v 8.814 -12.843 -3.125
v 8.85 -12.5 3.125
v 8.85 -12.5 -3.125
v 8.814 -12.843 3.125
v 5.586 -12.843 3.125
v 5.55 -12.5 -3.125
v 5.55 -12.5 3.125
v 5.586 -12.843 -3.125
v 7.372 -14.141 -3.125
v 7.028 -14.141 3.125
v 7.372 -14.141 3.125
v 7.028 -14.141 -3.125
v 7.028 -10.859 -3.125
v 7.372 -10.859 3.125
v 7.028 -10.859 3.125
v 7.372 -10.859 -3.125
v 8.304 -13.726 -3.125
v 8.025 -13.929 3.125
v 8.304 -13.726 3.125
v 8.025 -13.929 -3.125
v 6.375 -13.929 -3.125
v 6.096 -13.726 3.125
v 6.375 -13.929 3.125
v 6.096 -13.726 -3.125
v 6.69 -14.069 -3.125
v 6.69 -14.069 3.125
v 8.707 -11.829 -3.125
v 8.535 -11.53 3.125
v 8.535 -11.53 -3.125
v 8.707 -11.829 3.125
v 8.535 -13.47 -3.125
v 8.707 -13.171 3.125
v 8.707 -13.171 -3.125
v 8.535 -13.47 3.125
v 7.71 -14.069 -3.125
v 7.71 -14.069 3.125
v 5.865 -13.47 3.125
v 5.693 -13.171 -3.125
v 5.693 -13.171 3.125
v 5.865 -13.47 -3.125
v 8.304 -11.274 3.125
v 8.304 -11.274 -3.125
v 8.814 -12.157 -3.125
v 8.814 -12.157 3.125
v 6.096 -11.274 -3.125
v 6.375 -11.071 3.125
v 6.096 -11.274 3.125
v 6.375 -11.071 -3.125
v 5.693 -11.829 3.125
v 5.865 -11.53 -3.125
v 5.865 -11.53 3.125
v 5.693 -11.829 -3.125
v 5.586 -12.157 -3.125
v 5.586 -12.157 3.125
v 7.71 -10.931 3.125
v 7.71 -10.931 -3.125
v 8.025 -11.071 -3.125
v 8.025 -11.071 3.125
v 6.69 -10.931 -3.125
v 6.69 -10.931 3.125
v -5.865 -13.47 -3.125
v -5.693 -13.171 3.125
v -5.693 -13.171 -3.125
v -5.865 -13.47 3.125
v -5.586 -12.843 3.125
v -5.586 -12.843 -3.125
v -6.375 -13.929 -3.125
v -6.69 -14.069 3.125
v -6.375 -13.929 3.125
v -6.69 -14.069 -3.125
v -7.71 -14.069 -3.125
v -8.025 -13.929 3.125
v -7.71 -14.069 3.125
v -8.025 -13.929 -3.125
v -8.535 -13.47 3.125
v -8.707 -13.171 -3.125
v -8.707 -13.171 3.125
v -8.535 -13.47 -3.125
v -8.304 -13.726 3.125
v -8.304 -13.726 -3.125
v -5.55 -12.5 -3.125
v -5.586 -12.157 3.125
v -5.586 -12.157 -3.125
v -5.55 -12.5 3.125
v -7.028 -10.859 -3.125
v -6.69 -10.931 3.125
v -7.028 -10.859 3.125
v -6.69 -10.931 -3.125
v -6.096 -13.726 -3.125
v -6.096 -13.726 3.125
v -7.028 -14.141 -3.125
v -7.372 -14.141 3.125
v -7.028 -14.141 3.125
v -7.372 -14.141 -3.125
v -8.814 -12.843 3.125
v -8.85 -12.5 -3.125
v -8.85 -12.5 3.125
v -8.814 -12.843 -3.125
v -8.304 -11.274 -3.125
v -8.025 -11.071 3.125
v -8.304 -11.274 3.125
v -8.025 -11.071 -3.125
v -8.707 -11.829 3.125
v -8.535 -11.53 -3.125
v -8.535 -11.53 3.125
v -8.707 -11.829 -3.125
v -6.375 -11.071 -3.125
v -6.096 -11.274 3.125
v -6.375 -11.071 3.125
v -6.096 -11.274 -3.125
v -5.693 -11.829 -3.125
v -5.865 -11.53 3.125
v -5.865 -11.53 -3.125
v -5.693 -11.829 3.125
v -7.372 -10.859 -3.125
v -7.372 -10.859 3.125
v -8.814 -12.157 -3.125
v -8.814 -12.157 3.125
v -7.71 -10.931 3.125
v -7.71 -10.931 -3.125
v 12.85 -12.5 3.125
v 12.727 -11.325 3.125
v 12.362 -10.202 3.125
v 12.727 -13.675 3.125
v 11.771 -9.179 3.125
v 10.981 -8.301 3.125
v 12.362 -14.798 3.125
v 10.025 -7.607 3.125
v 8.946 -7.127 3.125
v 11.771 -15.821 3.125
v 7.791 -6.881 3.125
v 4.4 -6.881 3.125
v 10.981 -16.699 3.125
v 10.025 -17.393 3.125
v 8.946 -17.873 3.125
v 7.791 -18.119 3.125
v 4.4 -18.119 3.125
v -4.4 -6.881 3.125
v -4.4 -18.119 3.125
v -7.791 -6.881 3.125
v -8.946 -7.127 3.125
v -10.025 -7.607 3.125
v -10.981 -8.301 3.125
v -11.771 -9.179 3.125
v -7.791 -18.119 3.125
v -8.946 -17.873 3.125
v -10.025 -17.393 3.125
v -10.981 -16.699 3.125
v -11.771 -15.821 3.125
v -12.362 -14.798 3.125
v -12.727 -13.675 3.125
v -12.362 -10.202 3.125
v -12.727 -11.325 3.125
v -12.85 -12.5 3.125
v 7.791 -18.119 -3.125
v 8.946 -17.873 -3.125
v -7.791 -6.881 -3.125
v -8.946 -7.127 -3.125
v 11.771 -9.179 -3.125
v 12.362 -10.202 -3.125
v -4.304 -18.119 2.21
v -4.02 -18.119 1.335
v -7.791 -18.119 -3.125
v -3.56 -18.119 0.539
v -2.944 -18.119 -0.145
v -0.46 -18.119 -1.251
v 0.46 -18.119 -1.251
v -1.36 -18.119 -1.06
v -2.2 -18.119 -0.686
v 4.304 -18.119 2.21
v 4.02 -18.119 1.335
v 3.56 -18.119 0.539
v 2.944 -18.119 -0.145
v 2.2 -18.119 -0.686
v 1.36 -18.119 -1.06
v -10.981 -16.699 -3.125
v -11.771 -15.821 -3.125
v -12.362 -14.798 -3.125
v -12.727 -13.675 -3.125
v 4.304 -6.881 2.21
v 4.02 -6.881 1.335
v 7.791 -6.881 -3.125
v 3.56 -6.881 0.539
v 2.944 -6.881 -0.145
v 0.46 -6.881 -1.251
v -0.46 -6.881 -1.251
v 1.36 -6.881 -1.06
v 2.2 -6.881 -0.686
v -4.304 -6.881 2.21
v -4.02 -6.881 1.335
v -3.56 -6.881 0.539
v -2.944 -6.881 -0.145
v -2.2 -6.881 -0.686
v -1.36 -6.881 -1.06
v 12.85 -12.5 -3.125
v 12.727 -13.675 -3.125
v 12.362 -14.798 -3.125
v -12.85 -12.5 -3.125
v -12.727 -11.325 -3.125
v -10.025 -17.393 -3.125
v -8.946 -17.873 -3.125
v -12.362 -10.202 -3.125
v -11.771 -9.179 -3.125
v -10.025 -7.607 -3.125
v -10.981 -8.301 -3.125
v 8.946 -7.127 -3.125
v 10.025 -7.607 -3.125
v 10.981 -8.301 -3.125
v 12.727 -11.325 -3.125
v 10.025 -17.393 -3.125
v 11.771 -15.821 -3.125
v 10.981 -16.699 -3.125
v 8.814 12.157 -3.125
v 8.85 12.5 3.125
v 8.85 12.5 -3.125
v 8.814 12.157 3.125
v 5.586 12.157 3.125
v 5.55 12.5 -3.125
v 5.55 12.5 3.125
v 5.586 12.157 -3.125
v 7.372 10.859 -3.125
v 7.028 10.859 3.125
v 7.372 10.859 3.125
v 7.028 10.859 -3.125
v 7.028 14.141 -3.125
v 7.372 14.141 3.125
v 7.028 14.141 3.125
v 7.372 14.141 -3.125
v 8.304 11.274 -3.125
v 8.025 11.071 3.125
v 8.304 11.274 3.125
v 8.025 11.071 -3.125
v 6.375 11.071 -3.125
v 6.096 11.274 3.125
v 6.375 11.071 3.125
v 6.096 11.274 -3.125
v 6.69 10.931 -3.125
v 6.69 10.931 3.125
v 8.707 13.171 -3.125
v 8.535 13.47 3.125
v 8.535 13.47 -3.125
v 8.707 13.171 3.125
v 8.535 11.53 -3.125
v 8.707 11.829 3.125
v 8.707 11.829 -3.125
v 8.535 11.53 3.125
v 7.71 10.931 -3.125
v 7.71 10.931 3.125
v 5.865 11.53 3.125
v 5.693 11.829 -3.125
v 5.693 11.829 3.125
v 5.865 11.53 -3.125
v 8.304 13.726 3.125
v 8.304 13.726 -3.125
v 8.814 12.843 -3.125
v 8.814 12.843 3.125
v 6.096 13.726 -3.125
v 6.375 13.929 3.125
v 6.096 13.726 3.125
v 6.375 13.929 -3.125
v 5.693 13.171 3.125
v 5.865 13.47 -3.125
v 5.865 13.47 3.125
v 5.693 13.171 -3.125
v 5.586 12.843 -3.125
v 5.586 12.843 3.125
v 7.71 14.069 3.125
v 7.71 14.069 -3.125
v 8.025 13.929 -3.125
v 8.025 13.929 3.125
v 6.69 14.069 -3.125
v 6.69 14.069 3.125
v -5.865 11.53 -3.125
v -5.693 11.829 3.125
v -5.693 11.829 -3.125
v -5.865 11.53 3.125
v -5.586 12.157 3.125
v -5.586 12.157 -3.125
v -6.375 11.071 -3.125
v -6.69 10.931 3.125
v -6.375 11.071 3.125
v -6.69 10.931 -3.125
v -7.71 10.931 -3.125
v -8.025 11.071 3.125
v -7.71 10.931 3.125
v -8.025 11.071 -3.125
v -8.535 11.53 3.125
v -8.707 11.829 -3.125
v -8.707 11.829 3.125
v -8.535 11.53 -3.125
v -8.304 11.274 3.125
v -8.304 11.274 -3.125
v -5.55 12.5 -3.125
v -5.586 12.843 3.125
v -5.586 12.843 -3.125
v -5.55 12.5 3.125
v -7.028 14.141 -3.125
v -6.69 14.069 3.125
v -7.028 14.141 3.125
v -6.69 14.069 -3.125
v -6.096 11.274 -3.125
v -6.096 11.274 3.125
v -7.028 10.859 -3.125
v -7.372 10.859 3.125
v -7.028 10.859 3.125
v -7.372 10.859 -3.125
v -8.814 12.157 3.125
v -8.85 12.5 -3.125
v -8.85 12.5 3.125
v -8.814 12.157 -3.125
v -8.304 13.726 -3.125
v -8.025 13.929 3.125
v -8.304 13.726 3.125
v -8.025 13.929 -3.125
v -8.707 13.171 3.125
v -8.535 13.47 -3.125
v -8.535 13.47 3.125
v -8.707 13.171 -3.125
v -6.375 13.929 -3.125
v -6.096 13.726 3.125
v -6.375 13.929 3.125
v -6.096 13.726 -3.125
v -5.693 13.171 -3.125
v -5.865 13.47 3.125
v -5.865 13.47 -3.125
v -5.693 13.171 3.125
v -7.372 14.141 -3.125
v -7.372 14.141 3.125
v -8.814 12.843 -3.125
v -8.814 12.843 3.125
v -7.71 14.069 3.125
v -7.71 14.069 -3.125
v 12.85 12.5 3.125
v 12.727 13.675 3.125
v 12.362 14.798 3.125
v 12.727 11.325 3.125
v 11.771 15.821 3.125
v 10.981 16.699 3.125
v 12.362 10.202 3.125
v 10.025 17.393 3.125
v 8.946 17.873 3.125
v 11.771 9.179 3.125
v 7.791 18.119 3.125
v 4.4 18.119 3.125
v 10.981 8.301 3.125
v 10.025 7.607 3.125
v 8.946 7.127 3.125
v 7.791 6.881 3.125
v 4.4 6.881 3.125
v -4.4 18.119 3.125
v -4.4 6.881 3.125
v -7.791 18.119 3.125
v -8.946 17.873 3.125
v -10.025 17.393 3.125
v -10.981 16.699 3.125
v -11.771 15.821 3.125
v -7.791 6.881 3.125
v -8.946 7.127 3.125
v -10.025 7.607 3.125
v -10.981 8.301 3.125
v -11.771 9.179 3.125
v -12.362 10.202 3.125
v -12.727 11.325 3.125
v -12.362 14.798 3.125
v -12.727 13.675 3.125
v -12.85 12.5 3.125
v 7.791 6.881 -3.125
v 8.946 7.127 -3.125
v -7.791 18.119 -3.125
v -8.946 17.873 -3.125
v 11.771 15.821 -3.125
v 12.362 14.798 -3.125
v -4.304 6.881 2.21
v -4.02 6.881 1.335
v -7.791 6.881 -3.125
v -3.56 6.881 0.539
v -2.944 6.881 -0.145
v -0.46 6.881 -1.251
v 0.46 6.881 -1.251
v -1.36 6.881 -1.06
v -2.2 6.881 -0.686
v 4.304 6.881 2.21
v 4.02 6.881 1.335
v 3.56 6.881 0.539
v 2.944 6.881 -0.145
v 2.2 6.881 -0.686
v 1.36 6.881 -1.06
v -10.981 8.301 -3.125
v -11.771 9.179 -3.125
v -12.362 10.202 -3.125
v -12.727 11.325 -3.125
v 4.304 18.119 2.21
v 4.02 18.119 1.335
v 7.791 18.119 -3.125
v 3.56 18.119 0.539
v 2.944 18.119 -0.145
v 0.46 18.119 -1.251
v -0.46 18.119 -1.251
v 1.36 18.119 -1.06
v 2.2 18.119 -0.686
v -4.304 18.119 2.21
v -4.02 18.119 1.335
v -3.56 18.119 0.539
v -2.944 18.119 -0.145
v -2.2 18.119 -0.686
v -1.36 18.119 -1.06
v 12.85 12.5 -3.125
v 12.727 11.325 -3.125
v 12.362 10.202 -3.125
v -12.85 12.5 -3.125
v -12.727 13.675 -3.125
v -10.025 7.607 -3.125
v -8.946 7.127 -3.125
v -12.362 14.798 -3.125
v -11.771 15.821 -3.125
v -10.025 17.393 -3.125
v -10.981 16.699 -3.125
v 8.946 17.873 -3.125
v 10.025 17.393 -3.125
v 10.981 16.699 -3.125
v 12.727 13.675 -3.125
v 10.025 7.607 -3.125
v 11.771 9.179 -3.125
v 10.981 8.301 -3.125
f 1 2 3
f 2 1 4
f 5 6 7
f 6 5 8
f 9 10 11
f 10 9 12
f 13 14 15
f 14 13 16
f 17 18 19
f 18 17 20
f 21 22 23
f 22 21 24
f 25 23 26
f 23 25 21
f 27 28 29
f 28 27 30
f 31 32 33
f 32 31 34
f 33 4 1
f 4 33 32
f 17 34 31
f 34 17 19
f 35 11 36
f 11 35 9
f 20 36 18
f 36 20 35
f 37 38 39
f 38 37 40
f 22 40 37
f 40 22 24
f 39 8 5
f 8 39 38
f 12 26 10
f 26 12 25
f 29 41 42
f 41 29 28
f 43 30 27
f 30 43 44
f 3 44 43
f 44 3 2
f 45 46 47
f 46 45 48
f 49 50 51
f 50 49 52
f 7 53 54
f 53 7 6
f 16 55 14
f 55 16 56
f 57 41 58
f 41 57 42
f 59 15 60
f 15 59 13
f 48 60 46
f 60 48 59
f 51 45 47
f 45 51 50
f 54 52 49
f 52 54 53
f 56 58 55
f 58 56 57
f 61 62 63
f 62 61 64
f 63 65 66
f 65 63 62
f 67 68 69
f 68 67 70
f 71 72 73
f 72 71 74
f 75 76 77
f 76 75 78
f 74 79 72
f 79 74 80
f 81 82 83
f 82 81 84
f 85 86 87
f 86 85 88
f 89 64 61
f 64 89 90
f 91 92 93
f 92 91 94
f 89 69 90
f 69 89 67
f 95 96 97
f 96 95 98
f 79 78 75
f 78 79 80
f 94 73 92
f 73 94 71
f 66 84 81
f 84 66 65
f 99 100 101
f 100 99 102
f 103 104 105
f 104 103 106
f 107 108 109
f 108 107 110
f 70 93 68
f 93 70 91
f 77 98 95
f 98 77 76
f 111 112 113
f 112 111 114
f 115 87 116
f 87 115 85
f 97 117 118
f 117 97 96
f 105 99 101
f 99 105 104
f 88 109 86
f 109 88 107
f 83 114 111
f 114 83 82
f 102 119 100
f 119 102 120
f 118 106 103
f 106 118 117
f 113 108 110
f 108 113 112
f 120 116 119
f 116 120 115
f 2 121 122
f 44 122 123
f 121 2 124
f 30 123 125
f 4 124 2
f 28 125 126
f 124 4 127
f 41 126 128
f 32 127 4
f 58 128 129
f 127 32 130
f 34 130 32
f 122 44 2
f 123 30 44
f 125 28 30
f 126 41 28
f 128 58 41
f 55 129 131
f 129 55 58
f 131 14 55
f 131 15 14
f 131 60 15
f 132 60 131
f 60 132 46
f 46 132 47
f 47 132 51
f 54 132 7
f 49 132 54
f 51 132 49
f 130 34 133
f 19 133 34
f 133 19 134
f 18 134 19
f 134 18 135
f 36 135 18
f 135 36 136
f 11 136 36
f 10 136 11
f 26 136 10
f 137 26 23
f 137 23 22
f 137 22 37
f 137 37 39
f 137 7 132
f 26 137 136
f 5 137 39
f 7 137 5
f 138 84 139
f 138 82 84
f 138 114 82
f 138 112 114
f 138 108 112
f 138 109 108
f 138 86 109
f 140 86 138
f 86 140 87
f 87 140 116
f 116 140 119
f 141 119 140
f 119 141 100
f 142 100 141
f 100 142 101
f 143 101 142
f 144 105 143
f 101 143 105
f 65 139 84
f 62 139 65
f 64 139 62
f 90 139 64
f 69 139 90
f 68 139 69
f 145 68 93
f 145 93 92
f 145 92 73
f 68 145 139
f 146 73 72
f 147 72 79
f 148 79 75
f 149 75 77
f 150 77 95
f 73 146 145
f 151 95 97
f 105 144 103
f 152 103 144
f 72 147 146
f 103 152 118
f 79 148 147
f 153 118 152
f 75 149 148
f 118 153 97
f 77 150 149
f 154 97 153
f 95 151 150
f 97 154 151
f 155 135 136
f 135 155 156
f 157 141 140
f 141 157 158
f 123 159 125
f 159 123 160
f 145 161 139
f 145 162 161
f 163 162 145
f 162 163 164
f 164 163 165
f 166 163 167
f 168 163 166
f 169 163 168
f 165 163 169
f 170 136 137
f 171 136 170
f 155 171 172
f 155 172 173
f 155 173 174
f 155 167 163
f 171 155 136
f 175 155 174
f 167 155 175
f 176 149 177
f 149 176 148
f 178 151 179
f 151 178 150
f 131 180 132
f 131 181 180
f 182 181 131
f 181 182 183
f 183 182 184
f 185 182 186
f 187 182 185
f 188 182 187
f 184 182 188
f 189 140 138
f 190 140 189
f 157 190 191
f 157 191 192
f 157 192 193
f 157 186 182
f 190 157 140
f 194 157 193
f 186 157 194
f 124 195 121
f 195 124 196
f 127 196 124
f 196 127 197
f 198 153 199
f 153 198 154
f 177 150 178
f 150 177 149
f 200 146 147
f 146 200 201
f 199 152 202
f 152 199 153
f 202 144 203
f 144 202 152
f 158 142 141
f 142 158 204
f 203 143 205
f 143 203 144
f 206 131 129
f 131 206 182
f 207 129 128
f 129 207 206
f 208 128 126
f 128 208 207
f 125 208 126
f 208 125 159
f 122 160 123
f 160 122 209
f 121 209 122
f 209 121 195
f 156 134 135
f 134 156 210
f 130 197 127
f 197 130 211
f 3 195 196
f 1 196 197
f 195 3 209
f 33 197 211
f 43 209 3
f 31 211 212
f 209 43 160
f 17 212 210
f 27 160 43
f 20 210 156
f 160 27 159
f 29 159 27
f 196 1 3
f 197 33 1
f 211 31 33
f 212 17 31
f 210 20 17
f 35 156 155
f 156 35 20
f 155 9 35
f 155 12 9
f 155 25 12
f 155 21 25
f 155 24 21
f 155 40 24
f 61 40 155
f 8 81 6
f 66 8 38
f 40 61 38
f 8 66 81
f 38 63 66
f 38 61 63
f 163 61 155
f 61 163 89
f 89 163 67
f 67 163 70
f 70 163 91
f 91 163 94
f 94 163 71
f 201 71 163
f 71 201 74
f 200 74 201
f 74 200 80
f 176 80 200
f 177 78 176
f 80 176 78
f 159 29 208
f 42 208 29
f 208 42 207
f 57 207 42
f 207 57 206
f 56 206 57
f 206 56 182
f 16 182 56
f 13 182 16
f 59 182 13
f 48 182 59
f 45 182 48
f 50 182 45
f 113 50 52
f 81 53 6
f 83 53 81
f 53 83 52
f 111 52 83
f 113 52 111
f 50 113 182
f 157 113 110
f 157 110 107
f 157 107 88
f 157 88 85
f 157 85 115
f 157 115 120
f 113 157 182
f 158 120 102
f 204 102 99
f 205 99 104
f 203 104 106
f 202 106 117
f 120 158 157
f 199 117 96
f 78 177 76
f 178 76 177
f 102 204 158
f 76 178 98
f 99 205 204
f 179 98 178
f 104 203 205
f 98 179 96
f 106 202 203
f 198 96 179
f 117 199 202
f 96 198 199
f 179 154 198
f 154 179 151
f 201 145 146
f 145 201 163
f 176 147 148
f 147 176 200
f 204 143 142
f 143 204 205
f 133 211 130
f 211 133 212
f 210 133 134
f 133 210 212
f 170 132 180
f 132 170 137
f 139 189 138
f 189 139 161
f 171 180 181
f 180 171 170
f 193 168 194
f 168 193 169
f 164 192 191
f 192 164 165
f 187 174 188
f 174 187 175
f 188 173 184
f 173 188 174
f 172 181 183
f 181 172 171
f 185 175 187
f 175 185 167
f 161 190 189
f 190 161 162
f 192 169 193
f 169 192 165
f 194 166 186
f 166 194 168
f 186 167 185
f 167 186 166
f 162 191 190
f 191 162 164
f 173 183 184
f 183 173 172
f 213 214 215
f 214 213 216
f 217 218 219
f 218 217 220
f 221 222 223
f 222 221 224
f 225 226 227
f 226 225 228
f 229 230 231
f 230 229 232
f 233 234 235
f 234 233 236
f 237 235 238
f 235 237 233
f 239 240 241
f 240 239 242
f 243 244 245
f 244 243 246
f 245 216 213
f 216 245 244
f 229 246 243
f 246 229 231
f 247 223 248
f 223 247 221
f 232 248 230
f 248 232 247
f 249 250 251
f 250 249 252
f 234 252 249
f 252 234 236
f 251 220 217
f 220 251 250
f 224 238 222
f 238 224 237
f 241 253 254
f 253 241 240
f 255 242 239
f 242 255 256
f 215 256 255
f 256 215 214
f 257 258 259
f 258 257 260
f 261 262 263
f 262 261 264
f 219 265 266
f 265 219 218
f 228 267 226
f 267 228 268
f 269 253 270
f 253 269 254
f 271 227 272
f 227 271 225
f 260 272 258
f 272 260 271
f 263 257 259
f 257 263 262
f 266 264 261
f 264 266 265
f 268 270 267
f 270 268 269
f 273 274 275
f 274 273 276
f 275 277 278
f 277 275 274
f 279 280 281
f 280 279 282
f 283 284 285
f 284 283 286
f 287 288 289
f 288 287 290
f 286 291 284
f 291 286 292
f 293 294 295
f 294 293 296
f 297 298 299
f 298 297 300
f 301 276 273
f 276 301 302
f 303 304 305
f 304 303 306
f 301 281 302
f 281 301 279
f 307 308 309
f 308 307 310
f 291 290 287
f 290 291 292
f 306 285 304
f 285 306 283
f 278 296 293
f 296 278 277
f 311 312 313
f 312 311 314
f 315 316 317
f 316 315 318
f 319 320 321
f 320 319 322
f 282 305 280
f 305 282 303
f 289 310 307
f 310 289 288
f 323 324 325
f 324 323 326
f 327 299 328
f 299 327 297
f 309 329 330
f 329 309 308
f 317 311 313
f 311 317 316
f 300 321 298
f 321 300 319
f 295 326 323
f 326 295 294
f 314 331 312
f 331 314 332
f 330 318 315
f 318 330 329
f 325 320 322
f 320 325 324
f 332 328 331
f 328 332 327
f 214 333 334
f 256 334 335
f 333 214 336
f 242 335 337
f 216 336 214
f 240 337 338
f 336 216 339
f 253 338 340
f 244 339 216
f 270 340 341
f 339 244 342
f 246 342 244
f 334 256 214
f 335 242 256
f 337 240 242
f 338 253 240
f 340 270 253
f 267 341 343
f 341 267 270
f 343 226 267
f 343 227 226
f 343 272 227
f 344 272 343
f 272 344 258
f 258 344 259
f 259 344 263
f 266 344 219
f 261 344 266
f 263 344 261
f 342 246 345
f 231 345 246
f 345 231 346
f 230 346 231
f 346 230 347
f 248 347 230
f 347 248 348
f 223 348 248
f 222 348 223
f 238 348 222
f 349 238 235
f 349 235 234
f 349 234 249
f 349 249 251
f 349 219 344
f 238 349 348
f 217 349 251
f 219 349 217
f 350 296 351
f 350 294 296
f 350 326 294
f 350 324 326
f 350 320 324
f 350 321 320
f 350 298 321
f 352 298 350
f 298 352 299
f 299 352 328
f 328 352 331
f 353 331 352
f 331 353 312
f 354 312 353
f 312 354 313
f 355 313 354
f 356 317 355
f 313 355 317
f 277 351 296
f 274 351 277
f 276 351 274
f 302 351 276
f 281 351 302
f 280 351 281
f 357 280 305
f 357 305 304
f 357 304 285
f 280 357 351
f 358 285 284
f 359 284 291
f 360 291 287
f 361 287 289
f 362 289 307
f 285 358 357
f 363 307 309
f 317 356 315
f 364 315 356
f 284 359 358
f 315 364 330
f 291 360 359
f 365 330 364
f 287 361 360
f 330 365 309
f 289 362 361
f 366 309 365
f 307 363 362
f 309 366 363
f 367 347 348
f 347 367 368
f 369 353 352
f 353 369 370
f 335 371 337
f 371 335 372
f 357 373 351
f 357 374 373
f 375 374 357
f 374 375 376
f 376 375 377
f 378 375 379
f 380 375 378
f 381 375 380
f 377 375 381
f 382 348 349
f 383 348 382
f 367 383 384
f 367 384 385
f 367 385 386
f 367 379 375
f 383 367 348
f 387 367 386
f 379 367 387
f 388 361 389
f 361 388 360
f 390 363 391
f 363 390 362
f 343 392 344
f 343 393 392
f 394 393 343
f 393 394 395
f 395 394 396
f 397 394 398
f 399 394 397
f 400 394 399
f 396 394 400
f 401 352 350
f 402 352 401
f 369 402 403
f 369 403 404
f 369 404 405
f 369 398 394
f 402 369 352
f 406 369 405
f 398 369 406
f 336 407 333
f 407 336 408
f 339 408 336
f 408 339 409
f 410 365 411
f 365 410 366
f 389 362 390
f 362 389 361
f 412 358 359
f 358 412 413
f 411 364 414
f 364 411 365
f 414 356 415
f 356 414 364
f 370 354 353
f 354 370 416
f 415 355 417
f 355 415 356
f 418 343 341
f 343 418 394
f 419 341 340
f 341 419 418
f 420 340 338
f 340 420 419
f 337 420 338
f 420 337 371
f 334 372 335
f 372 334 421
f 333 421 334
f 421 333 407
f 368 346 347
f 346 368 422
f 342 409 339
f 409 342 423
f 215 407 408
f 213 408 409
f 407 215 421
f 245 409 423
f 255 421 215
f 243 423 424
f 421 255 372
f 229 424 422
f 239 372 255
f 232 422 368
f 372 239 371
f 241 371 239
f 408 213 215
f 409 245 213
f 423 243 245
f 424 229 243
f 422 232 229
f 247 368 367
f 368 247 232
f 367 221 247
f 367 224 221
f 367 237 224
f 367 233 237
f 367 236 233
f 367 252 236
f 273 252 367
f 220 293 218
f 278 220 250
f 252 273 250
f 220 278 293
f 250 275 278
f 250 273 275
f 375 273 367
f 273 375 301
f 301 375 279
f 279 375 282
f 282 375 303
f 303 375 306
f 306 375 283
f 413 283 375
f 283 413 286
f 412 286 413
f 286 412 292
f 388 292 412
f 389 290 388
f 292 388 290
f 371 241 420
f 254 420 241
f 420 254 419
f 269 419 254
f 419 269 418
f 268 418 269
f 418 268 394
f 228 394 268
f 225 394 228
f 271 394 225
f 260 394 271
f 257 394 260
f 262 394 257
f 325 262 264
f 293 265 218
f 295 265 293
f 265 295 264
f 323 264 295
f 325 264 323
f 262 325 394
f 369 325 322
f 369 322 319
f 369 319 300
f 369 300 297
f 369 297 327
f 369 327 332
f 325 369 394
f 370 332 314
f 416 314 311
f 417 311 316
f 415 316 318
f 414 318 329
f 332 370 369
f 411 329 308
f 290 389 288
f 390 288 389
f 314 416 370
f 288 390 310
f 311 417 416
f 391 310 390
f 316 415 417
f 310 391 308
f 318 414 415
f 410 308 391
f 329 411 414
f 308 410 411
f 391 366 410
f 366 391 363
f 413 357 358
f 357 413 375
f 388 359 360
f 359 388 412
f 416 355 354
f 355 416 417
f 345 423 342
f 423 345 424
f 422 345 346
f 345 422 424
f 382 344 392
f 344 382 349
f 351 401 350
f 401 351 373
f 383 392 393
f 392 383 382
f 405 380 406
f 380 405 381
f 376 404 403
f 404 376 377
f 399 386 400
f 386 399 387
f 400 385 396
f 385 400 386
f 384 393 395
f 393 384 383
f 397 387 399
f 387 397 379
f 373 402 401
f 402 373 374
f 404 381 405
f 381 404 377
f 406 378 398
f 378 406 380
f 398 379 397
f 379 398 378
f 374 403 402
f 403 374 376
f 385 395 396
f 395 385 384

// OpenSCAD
$fn=30;

screw_hole_dist=14.4;
screw_hole_dia=3.3;
screw_hole_rad=screw_hole_dia/2;
total_body_width=12.5;

pen_rad=4;
gap_size=0.4;

module screw_hole(dist, rad, height) {
    cylinder(h=height, r=rad);
}

module screw_holes(dist, rad, height) {
    translate([0,height/2,0]) 
    rotate([90,0,0]) {
        translate([dist/2,0,0])
        screw_hole(dist, rad, height);
        translate([-dist/2,0,0])
        screw_hole(dist, rad, height);
    }
}

screw_wall_thick=4;
module mount_body(body_width) {
    difference() {
    hull()
    screw_holes(screw_hole_dist, screw_hole_rad+screw_wall_thick, body_width);
    screw_holes(screw_hole_dist, screw_hole_rad, 30);
    }
}

module body_half(body_width) {
    difference() {
    mount_body(body_width);
    translate([0,body_width/2,-50/2])
    cylinder(h=50, r=4+gap_size);
    }
}

module parts_together() {
    translate([0,-(total_body_width/2/2+gap_size)])
    body_half(total_body_width/2);
    rotate([180,0,0])
    translate([0,-(total_body_width/2/2+gap_size)])
    body_half(total_body_width/2);
}

module print_parts() {
    translate([0,-total_body_width,0])
    rotate([90,0,0])
    body_half(total_body_width/2);
    translate([0,total_body_width,0])
    rotate([90,0,0])
    body_half(total_body_width/2);
}

print_parts();
